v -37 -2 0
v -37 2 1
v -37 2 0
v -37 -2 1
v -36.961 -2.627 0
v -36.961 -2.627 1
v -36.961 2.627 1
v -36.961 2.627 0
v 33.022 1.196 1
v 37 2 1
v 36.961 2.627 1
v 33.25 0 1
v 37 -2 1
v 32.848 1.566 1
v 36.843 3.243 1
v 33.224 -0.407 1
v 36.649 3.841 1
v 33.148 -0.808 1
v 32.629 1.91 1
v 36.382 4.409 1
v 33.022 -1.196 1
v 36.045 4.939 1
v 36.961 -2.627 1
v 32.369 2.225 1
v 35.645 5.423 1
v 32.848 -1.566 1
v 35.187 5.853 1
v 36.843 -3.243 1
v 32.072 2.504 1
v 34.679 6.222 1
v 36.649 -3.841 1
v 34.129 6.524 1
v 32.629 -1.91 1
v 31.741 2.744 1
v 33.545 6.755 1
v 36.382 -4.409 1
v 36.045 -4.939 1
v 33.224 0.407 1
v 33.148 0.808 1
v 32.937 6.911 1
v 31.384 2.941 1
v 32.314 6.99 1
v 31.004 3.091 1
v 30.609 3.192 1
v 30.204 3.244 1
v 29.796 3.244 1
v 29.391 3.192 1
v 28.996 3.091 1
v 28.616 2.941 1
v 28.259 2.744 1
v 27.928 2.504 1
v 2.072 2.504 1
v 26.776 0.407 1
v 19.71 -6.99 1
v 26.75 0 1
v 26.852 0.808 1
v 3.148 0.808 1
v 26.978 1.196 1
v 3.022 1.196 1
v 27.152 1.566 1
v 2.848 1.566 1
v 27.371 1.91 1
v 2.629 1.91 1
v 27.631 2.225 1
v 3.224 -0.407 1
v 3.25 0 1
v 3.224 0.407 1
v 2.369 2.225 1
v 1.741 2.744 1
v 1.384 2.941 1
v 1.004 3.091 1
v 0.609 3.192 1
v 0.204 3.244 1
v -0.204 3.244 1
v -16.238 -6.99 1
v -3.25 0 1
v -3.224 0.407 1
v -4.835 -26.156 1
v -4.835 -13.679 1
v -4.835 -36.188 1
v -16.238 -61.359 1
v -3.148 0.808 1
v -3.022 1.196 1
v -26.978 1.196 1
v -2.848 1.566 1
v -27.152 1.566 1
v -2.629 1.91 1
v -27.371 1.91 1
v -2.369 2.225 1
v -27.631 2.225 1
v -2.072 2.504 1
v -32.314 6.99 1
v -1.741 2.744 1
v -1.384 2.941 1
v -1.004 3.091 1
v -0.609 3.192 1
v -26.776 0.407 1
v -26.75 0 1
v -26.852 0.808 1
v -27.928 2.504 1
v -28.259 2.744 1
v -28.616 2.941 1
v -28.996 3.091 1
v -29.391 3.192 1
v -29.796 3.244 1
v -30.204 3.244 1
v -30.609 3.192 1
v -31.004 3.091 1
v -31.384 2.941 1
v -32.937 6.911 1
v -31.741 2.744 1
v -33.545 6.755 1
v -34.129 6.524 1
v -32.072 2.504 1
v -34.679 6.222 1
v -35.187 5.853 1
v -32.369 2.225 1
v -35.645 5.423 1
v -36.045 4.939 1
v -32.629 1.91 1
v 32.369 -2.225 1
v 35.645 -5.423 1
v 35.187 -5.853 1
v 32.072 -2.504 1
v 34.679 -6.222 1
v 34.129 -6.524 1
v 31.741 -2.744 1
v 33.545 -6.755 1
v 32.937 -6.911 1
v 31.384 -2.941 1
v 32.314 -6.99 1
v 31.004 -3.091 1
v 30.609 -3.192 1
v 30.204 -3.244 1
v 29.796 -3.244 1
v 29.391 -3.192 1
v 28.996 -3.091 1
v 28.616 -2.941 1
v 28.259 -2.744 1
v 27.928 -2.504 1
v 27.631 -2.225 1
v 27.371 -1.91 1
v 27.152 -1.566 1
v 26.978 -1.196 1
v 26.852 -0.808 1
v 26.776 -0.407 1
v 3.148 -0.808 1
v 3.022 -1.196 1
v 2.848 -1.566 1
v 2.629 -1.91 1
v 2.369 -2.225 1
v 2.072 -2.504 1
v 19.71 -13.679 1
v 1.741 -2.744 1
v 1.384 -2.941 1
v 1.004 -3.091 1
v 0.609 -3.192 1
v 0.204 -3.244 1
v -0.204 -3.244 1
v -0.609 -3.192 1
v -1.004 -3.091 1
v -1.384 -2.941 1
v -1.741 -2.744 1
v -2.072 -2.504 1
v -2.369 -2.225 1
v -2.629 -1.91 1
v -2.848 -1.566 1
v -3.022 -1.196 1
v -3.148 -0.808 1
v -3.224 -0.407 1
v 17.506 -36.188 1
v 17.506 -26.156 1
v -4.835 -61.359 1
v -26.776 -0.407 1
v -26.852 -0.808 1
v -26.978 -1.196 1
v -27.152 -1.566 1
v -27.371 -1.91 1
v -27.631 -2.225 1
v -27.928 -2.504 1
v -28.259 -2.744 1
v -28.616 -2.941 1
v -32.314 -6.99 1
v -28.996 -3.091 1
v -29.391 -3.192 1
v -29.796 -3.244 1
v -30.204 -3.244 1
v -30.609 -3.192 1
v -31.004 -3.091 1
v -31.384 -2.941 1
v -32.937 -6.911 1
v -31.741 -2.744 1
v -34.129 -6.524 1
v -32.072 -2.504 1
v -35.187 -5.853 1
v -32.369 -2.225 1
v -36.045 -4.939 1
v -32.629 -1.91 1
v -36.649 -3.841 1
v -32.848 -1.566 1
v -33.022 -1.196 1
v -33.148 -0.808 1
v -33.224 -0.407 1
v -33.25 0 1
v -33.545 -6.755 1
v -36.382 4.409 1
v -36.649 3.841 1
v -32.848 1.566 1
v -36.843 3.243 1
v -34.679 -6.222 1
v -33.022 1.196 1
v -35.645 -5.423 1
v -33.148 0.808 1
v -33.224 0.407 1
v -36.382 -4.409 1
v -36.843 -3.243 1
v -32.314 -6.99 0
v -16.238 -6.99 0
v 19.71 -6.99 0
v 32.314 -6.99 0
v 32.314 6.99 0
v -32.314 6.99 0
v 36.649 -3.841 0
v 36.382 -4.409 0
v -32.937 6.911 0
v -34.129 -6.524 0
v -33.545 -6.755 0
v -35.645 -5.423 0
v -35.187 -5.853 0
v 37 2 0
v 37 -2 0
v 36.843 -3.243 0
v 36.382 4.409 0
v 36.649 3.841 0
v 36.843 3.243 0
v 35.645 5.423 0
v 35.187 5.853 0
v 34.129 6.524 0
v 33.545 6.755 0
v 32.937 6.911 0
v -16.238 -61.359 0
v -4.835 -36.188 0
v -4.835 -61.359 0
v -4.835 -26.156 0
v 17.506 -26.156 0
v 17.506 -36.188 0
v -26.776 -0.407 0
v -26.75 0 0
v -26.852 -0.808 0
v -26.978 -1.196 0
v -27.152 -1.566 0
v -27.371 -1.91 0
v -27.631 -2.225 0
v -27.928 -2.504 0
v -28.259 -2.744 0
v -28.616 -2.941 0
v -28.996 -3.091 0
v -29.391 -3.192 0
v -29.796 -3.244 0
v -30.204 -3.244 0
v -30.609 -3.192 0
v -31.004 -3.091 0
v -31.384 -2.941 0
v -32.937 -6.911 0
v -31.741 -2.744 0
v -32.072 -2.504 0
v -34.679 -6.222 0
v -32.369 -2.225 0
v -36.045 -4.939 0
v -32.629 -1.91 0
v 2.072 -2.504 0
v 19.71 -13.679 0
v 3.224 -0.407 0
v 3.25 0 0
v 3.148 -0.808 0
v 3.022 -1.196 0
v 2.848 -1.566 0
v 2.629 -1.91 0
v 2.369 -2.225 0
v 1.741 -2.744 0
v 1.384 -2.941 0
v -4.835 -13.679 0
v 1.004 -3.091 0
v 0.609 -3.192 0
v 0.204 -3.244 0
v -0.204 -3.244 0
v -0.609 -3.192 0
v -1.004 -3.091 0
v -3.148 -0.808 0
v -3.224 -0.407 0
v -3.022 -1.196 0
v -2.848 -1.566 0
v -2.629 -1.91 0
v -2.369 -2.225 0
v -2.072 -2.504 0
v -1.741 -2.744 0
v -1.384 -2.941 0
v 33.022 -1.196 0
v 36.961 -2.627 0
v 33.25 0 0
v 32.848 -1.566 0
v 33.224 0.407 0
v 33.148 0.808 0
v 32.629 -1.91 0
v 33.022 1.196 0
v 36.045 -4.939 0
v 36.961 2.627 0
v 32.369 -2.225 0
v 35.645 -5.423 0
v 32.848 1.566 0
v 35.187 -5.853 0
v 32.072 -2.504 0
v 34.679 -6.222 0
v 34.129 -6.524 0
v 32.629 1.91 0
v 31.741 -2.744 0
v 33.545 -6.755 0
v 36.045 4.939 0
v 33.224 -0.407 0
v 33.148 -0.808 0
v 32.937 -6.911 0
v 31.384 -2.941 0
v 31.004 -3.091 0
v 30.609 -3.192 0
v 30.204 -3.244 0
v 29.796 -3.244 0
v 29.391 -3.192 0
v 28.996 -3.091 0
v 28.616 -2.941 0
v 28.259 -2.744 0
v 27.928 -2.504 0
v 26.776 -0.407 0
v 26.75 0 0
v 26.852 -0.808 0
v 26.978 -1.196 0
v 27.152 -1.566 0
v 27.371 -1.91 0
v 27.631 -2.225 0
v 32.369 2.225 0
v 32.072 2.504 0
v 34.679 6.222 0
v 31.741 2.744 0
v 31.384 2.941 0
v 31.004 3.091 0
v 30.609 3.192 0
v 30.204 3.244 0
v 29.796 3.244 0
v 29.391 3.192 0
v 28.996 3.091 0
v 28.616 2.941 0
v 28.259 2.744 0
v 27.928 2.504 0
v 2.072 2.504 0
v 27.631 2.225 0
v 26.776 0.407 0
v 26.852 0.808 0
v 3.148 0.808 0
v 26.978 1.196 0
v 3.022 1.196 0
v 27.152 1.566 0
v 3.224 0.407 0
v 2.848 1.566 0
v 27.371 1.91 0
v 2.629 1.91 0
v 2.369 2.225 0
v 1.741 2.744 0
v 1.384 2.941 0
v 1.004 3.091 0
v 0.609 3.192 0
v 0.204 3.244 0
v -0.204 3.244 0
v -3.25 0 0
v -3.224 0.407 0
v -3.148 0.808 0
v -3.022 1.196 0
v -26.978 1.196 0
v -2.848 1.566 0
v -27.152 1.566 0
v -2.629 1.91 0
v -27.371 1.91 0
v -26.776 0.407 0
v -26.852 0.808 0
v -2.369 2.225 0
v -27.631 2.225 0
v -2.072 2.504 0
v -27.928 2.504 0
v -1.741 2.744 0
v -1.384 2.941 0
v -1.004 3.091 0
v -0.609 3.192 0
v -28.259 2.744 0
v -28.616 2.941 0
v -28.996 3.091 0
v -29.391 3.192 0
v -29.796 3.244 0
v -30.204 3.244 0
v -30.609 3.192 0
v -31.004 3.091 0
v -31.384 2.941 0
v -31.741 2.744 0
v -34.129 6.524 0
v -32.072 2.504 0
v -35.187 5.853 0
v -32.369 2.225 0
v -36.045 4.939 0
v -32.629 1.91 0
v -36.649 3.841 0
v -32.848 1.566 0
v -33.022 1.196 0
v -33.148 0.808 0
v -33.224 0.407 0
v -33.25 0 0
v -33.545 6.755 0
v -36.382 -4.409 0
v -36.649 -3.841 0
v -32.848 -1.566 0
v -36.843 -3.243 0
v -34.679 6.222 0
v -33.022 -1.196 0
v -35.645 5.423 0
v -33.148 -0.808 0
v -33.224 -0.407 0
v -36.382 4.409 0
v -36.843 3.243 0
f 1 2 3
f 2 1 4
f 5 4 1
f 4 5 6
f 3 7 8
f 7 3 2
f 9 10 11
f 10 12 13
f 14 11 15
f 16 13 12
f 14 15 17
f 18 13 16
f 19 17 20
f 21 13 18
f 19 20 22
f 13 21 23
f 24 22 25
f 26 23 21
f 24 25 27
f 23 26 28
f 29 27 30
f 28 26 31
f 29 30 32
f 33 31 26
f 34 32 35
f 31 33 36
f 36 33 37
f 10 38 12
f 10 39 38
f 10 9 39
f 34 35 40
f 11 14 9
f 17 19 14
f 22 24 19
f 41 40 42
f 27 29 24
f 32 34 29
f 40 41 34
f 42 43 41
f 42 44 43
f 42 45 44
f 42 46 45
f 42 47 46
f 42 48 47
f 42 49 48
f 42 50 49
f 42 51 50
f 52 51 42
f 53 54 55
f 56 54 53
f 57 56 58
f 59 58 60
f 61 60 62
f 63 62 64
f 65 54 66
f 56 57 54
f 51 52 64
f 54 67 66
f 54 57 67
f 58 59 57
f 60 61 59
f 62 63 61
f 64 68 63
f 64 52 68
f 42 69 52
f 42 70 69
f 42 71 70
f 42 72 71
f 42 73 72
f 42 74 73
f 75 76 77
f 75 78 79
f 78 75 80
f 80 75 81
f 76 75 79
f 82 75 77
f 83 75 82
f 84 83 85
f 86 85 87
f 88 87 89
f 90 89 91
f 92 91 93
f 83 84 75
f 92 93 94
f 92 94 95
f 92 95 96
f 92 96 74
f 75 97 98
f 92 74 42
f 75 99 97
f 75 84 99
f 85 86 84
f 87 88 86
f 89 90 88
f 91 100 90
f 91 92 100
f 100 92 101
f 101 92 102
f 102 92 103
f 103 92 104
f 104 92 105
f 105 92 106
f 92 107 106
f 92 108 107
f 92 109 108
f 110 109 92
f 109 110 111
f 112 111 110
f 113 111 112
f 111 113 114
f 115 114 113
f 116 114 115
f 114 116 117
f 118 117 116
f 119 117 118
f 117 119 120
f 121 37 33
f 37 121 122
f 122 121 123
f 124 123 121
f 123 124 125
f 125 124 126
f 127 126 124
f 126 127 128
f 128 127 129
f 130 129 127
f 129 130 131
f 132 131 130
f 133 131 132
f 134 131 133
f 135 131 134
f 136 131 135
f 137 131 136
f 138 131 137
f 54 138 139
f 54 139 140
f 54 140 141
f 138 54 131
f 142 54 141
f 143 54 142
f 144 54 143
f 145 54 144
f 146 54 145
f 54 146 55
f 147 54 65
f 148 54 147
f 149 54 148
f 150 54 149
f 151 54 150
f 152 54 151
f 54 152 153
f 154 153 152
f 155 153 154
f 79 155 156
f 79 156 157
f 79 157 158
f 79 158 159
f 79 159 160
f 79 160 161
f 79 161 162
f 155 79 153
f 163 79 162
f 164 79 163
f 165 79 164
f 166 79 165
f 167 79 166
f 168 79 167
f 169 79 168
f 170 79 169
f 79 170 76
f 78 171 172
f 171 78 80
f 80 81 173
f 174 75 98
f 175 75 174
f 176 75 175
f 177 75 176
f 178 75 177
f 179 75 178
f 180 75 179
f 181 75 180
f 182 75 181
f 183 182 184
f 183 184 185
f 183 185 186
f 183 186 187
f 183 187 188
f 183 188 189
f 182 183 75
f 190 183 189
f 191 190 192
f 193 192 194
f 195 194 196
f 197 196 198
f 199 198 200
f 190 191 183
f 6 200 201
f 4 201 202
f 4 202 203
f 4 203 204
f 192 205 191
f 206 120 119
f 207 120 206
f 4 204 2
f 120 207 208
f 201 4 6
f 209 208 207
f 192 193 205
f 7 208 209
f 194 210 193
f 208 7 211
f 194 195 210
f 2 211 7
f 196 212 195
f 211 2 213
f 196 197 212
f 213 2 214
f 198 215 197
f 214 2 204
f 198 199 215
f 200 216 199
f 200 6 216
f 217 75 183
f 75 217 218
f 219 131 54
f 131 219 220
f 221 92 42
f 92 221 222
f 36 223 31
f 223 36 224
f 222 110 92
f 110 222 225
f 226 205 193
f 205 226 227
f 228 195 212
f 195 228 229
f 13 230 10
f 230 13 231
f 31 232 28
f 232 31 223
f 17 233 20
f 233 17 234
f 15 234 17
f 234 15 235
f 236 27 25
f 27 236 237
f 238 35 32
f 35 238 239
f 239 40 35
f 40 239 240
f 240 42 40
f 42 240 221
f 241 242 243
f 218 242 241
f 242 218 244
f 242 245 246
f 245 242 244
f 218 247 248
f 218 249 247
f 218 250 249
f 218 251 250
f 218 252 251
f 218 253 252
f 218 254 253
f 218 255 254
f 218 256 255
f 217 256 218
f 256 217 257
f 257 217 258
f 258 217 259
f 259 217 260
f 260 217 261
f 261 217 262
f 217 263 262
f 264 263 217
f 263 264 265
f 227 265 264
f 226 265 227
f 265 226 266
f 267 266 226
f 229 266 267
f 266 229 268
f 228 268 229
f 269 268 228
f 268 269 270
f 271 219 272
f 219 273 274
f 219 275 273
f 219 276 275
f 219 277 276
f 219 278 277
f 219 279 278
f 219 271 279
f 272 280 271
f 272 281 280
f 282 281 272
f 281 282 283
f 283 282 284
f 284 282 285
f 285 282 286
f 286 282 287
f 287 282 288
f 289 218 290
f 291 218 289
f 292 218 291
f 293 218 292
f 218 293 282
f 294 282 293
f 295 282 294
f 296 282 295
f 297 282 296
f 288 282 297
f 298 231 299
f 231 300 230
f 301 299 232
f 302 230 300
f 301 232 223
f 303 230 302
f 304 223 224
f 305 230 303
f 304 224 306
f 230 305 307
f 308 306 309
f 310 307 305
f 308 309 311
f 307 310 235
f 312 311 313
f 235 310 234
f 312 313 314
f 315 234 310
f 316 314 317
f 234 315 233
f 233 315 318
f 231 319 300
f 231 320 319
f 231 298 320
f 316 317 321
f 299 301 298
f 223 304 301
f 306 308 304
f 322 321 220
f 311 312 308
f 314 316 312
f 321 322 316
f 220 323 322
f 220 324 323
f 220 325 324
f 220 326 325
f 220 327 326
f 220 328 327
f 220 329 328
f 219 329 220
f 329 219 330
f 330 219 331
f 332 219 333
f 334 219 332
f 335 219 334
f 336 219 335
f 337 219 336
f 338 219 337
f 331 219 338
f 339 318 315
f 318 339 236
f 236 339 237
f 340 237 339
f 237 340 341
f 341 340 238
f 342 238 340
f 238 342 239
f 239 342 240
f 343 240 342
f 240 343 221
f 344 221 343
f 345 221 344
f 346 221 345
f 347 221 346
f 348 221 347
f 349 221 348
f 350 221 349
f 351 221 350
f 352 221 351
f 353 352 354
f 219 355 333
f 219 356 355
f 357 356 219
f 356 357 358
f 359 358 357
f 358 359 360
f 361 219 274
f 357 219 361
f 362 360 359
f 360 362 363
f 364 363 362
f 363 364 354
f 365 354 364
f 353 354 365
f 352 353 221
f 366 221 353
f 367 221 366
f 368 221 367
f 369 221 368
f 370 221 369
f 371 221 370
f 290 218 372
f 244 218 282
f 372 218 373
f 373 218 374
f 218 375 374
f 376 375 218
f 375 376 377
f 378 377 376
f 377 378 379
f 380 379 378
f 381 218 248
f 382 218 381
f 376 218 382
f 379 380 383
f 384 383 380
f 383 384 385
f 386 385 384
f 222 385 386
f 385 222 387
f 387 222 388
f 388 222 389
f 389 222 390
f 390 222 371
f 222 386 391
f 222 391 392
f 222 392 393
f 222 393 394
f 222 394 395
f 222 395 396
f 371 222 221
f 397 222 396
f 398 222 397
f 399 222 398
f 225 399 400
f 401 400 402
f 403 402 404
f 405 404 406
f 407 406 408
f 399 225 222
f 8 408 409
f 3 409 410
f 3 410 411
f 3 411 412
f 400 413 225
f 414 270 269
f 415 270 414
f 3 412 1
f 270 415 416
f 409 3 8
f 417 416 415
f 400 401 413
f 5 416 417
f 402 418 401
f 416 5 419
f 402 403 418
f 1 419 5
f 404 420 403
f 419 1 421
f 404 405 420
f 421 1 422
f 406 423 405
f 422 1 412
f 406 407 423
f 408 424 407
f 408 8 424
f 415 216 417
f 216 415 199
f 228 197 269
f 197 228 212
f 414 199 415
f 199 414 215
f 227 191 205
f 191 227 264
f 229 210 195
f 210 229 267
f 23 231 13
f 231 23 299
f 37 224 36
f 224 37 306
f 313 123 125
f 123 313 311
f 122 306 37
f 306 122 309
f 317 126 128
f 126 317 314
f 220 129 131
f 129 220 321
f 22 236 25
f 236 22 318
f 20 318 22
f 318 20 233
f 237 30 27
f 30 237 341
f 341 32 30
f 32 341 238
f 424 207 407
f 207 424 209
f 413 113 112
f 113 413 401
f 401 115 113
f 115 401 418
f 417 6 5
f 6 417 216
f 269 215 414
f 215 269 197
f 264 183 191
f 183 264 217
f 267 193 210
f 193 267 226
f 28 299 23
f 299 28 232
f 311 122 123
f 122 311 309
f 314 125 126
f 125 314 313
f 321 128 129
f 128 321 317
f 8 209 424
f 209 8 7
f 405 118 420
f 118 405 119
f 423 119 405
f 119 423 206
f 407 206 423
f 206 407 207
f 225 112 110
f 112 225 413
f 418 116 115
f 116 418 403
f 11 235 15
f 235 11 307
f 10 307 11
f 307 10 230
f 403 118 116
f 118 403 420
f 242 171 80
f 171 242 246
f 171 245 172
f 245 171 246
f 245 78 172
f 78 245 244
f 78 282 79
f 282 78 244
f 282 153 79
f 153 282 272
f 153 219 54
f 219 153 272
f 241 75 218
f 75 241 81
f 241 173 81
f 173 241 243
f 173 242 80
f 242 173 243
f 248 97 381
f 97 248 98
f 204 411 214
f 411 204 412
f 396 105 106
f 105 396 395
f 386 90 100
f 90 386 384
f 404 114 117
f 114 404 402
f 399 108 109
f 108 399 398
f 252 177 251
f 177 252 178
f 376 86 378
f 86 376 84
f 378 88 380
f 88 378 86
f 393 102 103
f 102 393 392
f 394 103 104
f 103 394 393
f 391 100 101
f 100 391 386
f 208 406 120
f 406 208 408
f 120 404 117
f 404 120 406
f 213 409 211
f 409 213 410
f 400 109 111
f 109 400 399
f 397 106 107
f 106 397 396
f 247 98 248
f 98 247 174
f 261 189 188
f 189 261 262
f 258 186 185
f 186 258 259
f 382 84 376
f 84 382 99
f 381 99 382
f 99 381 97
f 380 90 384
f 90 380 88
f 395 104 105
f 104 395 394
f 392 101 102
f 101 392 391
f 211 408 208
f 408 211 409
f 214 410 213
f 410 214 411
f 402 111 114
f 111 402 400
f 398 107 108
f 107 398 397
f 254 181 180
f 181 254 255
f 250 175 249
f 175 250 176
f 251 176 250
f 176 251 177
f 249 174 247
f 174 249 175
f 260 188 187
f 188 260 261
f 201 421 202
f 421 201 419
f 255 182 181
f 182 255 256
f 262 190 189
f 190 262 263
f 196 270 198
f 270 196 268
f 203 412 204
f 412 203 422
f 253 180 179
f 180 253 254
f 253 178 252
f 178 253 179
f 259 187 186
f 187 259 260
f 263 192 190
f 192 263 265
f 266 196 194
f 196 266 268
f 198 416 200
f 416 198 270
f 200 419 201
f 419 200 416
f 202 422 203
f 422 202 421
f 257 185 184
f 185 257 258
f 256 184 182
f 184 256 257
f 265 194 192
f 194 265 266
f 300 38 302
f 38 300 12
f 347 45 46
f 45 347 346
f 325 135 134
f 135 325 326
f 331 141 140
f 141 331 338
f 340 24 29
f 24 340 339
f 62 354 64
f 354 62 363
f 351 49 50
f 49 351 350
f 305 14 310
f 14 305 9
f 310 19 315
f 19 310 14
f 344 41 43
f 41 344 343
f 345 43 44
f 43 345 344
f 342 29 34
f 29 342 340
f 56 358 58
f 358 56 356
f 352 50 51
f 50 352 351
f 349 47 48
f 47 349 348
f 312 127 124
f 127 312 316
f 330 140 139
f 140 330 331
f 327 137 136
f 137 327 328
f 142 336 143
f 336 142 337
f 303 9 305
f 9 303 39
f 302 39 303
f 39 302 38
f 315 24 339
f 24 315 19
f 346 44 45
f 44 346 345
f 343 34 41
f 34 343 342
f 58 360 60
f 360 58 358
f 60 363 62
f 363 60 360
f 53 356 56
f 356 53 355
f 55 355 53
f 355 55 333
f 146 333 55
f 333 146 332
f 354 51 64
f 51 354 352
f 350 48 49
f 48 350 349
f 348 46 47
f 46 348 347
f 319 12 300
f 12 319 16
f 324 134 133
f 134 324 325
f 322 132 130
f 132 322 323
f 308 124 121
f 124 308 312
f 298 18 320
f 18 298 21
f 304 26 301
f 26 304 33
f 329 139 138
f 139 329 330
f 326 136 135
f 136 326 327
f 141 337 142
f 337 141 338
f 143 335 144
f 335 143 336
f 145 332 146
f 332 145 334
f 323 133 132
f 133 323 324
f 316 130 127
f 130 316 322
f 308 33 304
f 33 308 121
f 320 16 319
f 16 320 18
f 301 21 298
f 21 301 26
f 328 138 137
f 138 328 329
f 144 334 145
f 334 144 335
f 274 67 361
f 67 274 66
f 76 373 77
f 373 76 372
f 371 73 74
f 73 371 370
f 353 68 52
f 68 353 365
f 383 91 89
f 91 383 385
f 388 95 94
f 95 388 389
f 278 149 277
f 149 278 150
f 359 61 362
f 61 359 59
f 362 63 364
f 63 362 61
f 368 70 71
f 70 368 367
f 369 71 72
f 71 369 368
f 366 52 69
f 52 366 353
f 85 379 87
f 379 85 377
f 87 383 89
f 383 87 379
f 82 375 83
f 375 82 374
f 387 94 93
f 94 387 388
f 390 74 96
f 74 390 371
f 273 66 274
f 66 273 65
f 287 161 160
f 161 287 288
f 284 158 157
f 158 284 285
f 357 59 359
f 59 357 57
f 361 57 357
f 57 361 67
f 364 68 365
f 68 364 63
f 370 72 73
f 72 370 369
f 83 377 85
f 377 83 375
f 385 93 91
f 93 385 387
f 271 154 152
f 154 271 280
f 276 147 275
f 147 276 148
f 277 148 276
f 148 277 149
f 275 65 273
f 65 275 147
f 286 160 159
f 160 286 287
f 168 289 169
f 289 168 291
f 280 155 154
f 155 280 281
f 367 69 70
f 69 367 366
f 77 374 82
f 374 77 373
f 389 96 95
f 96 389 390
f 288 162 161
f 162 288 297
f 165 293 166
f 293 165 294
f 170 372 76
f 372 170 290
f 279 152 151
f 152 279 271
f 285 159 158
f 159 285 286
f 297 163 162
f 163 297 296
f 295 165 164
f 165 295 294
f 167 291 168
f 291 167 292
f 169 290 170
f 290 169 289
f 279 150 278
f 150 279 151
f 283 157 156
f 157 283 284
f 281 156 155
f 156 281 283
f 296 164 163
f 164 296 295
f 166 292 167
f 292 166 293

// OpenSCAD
$fn = 50;


difference() {
	union() {
		translate(v = [0, 0, 0]) {
			rotate(a = [0, 0, 0]) {
				hull() {
					translate(v = [-32.0000000000, 2.0000000000, 0]) {
						rotate(a = [0, 0, 0]) {
							translate(v = [0, 0, 0]) {
								rotate(a = [0, 0, 0]) {
									cylinder(h = 1, r = 5);
								}
							}
						}
					}
					translate(v = [32.0000000000, 2.0000000000, 0]) {
						rotate(a = [0, 0, 0]) {
							translate(v = [0, 0, 0]) {
								rotate(a = [0, 0, 0]) {
									cylinder(h = 1, r = 5);
								}
							}
						}
					}
					translate(v = [-32.0000000000, -2.0000000000, 0]) {
						rotate(a = [0, 0, 0]) {
							translate(v = [0, 0, 0]) {
								rotate(a = [0, 0, 0]) {
									cylinder(h = 1, r = 5);
								}
							}
						}
					}
					translate(v = [32.0000000000, -2.0000000000, 0]) {
						rotate(a = [0, 0, 0]) {
							translate(v = [0, 0, 0]) {
								rotate(a = [0, 0, 0]) {
									cylinder(h = 1, r = 5);
								}
							}
						}
					}
				}
			}
		}
		translate(v = [0, -5, 0]) {
			rotate(a = [0, 0, 0]) {
				linear_extrude(height = 1) {
					text(font = "DejaVu Sans Mono:style=Bold", halign = "center", size = 57.0000000000, text = "F", valign = "top");
				}
			}
		}
	}
	union() {
		translate(v = [-30.0000000000, 0.0000000000, -125.0000000000]) {
			rotate(a = [0, 0, 0]) {
				cylinder(h = 250, r = 3.2500000000);
			}
		}
		translate(v = [30.0000000000, 0.0000000000, -125.0000000000]) {
			rotate(a = [0, 0, 0]) {
				cylinder(h = 250, r = 3.2500000000);
			}
		}
		translate(v = [30.0000000000, 0.0000000000, -125.0000000000]) {
			rotate(a = [0, 0, 0]) {
				cylinder(h = 250, r = 3.2500000000);
			}
		}
		translate(v = [0, 0, -125.0000000000]) {
			rotate(a = [0, 0, 0]) {
				cylinder(h = 250, r = 3.2500000000);
			}
		}
	}
}
